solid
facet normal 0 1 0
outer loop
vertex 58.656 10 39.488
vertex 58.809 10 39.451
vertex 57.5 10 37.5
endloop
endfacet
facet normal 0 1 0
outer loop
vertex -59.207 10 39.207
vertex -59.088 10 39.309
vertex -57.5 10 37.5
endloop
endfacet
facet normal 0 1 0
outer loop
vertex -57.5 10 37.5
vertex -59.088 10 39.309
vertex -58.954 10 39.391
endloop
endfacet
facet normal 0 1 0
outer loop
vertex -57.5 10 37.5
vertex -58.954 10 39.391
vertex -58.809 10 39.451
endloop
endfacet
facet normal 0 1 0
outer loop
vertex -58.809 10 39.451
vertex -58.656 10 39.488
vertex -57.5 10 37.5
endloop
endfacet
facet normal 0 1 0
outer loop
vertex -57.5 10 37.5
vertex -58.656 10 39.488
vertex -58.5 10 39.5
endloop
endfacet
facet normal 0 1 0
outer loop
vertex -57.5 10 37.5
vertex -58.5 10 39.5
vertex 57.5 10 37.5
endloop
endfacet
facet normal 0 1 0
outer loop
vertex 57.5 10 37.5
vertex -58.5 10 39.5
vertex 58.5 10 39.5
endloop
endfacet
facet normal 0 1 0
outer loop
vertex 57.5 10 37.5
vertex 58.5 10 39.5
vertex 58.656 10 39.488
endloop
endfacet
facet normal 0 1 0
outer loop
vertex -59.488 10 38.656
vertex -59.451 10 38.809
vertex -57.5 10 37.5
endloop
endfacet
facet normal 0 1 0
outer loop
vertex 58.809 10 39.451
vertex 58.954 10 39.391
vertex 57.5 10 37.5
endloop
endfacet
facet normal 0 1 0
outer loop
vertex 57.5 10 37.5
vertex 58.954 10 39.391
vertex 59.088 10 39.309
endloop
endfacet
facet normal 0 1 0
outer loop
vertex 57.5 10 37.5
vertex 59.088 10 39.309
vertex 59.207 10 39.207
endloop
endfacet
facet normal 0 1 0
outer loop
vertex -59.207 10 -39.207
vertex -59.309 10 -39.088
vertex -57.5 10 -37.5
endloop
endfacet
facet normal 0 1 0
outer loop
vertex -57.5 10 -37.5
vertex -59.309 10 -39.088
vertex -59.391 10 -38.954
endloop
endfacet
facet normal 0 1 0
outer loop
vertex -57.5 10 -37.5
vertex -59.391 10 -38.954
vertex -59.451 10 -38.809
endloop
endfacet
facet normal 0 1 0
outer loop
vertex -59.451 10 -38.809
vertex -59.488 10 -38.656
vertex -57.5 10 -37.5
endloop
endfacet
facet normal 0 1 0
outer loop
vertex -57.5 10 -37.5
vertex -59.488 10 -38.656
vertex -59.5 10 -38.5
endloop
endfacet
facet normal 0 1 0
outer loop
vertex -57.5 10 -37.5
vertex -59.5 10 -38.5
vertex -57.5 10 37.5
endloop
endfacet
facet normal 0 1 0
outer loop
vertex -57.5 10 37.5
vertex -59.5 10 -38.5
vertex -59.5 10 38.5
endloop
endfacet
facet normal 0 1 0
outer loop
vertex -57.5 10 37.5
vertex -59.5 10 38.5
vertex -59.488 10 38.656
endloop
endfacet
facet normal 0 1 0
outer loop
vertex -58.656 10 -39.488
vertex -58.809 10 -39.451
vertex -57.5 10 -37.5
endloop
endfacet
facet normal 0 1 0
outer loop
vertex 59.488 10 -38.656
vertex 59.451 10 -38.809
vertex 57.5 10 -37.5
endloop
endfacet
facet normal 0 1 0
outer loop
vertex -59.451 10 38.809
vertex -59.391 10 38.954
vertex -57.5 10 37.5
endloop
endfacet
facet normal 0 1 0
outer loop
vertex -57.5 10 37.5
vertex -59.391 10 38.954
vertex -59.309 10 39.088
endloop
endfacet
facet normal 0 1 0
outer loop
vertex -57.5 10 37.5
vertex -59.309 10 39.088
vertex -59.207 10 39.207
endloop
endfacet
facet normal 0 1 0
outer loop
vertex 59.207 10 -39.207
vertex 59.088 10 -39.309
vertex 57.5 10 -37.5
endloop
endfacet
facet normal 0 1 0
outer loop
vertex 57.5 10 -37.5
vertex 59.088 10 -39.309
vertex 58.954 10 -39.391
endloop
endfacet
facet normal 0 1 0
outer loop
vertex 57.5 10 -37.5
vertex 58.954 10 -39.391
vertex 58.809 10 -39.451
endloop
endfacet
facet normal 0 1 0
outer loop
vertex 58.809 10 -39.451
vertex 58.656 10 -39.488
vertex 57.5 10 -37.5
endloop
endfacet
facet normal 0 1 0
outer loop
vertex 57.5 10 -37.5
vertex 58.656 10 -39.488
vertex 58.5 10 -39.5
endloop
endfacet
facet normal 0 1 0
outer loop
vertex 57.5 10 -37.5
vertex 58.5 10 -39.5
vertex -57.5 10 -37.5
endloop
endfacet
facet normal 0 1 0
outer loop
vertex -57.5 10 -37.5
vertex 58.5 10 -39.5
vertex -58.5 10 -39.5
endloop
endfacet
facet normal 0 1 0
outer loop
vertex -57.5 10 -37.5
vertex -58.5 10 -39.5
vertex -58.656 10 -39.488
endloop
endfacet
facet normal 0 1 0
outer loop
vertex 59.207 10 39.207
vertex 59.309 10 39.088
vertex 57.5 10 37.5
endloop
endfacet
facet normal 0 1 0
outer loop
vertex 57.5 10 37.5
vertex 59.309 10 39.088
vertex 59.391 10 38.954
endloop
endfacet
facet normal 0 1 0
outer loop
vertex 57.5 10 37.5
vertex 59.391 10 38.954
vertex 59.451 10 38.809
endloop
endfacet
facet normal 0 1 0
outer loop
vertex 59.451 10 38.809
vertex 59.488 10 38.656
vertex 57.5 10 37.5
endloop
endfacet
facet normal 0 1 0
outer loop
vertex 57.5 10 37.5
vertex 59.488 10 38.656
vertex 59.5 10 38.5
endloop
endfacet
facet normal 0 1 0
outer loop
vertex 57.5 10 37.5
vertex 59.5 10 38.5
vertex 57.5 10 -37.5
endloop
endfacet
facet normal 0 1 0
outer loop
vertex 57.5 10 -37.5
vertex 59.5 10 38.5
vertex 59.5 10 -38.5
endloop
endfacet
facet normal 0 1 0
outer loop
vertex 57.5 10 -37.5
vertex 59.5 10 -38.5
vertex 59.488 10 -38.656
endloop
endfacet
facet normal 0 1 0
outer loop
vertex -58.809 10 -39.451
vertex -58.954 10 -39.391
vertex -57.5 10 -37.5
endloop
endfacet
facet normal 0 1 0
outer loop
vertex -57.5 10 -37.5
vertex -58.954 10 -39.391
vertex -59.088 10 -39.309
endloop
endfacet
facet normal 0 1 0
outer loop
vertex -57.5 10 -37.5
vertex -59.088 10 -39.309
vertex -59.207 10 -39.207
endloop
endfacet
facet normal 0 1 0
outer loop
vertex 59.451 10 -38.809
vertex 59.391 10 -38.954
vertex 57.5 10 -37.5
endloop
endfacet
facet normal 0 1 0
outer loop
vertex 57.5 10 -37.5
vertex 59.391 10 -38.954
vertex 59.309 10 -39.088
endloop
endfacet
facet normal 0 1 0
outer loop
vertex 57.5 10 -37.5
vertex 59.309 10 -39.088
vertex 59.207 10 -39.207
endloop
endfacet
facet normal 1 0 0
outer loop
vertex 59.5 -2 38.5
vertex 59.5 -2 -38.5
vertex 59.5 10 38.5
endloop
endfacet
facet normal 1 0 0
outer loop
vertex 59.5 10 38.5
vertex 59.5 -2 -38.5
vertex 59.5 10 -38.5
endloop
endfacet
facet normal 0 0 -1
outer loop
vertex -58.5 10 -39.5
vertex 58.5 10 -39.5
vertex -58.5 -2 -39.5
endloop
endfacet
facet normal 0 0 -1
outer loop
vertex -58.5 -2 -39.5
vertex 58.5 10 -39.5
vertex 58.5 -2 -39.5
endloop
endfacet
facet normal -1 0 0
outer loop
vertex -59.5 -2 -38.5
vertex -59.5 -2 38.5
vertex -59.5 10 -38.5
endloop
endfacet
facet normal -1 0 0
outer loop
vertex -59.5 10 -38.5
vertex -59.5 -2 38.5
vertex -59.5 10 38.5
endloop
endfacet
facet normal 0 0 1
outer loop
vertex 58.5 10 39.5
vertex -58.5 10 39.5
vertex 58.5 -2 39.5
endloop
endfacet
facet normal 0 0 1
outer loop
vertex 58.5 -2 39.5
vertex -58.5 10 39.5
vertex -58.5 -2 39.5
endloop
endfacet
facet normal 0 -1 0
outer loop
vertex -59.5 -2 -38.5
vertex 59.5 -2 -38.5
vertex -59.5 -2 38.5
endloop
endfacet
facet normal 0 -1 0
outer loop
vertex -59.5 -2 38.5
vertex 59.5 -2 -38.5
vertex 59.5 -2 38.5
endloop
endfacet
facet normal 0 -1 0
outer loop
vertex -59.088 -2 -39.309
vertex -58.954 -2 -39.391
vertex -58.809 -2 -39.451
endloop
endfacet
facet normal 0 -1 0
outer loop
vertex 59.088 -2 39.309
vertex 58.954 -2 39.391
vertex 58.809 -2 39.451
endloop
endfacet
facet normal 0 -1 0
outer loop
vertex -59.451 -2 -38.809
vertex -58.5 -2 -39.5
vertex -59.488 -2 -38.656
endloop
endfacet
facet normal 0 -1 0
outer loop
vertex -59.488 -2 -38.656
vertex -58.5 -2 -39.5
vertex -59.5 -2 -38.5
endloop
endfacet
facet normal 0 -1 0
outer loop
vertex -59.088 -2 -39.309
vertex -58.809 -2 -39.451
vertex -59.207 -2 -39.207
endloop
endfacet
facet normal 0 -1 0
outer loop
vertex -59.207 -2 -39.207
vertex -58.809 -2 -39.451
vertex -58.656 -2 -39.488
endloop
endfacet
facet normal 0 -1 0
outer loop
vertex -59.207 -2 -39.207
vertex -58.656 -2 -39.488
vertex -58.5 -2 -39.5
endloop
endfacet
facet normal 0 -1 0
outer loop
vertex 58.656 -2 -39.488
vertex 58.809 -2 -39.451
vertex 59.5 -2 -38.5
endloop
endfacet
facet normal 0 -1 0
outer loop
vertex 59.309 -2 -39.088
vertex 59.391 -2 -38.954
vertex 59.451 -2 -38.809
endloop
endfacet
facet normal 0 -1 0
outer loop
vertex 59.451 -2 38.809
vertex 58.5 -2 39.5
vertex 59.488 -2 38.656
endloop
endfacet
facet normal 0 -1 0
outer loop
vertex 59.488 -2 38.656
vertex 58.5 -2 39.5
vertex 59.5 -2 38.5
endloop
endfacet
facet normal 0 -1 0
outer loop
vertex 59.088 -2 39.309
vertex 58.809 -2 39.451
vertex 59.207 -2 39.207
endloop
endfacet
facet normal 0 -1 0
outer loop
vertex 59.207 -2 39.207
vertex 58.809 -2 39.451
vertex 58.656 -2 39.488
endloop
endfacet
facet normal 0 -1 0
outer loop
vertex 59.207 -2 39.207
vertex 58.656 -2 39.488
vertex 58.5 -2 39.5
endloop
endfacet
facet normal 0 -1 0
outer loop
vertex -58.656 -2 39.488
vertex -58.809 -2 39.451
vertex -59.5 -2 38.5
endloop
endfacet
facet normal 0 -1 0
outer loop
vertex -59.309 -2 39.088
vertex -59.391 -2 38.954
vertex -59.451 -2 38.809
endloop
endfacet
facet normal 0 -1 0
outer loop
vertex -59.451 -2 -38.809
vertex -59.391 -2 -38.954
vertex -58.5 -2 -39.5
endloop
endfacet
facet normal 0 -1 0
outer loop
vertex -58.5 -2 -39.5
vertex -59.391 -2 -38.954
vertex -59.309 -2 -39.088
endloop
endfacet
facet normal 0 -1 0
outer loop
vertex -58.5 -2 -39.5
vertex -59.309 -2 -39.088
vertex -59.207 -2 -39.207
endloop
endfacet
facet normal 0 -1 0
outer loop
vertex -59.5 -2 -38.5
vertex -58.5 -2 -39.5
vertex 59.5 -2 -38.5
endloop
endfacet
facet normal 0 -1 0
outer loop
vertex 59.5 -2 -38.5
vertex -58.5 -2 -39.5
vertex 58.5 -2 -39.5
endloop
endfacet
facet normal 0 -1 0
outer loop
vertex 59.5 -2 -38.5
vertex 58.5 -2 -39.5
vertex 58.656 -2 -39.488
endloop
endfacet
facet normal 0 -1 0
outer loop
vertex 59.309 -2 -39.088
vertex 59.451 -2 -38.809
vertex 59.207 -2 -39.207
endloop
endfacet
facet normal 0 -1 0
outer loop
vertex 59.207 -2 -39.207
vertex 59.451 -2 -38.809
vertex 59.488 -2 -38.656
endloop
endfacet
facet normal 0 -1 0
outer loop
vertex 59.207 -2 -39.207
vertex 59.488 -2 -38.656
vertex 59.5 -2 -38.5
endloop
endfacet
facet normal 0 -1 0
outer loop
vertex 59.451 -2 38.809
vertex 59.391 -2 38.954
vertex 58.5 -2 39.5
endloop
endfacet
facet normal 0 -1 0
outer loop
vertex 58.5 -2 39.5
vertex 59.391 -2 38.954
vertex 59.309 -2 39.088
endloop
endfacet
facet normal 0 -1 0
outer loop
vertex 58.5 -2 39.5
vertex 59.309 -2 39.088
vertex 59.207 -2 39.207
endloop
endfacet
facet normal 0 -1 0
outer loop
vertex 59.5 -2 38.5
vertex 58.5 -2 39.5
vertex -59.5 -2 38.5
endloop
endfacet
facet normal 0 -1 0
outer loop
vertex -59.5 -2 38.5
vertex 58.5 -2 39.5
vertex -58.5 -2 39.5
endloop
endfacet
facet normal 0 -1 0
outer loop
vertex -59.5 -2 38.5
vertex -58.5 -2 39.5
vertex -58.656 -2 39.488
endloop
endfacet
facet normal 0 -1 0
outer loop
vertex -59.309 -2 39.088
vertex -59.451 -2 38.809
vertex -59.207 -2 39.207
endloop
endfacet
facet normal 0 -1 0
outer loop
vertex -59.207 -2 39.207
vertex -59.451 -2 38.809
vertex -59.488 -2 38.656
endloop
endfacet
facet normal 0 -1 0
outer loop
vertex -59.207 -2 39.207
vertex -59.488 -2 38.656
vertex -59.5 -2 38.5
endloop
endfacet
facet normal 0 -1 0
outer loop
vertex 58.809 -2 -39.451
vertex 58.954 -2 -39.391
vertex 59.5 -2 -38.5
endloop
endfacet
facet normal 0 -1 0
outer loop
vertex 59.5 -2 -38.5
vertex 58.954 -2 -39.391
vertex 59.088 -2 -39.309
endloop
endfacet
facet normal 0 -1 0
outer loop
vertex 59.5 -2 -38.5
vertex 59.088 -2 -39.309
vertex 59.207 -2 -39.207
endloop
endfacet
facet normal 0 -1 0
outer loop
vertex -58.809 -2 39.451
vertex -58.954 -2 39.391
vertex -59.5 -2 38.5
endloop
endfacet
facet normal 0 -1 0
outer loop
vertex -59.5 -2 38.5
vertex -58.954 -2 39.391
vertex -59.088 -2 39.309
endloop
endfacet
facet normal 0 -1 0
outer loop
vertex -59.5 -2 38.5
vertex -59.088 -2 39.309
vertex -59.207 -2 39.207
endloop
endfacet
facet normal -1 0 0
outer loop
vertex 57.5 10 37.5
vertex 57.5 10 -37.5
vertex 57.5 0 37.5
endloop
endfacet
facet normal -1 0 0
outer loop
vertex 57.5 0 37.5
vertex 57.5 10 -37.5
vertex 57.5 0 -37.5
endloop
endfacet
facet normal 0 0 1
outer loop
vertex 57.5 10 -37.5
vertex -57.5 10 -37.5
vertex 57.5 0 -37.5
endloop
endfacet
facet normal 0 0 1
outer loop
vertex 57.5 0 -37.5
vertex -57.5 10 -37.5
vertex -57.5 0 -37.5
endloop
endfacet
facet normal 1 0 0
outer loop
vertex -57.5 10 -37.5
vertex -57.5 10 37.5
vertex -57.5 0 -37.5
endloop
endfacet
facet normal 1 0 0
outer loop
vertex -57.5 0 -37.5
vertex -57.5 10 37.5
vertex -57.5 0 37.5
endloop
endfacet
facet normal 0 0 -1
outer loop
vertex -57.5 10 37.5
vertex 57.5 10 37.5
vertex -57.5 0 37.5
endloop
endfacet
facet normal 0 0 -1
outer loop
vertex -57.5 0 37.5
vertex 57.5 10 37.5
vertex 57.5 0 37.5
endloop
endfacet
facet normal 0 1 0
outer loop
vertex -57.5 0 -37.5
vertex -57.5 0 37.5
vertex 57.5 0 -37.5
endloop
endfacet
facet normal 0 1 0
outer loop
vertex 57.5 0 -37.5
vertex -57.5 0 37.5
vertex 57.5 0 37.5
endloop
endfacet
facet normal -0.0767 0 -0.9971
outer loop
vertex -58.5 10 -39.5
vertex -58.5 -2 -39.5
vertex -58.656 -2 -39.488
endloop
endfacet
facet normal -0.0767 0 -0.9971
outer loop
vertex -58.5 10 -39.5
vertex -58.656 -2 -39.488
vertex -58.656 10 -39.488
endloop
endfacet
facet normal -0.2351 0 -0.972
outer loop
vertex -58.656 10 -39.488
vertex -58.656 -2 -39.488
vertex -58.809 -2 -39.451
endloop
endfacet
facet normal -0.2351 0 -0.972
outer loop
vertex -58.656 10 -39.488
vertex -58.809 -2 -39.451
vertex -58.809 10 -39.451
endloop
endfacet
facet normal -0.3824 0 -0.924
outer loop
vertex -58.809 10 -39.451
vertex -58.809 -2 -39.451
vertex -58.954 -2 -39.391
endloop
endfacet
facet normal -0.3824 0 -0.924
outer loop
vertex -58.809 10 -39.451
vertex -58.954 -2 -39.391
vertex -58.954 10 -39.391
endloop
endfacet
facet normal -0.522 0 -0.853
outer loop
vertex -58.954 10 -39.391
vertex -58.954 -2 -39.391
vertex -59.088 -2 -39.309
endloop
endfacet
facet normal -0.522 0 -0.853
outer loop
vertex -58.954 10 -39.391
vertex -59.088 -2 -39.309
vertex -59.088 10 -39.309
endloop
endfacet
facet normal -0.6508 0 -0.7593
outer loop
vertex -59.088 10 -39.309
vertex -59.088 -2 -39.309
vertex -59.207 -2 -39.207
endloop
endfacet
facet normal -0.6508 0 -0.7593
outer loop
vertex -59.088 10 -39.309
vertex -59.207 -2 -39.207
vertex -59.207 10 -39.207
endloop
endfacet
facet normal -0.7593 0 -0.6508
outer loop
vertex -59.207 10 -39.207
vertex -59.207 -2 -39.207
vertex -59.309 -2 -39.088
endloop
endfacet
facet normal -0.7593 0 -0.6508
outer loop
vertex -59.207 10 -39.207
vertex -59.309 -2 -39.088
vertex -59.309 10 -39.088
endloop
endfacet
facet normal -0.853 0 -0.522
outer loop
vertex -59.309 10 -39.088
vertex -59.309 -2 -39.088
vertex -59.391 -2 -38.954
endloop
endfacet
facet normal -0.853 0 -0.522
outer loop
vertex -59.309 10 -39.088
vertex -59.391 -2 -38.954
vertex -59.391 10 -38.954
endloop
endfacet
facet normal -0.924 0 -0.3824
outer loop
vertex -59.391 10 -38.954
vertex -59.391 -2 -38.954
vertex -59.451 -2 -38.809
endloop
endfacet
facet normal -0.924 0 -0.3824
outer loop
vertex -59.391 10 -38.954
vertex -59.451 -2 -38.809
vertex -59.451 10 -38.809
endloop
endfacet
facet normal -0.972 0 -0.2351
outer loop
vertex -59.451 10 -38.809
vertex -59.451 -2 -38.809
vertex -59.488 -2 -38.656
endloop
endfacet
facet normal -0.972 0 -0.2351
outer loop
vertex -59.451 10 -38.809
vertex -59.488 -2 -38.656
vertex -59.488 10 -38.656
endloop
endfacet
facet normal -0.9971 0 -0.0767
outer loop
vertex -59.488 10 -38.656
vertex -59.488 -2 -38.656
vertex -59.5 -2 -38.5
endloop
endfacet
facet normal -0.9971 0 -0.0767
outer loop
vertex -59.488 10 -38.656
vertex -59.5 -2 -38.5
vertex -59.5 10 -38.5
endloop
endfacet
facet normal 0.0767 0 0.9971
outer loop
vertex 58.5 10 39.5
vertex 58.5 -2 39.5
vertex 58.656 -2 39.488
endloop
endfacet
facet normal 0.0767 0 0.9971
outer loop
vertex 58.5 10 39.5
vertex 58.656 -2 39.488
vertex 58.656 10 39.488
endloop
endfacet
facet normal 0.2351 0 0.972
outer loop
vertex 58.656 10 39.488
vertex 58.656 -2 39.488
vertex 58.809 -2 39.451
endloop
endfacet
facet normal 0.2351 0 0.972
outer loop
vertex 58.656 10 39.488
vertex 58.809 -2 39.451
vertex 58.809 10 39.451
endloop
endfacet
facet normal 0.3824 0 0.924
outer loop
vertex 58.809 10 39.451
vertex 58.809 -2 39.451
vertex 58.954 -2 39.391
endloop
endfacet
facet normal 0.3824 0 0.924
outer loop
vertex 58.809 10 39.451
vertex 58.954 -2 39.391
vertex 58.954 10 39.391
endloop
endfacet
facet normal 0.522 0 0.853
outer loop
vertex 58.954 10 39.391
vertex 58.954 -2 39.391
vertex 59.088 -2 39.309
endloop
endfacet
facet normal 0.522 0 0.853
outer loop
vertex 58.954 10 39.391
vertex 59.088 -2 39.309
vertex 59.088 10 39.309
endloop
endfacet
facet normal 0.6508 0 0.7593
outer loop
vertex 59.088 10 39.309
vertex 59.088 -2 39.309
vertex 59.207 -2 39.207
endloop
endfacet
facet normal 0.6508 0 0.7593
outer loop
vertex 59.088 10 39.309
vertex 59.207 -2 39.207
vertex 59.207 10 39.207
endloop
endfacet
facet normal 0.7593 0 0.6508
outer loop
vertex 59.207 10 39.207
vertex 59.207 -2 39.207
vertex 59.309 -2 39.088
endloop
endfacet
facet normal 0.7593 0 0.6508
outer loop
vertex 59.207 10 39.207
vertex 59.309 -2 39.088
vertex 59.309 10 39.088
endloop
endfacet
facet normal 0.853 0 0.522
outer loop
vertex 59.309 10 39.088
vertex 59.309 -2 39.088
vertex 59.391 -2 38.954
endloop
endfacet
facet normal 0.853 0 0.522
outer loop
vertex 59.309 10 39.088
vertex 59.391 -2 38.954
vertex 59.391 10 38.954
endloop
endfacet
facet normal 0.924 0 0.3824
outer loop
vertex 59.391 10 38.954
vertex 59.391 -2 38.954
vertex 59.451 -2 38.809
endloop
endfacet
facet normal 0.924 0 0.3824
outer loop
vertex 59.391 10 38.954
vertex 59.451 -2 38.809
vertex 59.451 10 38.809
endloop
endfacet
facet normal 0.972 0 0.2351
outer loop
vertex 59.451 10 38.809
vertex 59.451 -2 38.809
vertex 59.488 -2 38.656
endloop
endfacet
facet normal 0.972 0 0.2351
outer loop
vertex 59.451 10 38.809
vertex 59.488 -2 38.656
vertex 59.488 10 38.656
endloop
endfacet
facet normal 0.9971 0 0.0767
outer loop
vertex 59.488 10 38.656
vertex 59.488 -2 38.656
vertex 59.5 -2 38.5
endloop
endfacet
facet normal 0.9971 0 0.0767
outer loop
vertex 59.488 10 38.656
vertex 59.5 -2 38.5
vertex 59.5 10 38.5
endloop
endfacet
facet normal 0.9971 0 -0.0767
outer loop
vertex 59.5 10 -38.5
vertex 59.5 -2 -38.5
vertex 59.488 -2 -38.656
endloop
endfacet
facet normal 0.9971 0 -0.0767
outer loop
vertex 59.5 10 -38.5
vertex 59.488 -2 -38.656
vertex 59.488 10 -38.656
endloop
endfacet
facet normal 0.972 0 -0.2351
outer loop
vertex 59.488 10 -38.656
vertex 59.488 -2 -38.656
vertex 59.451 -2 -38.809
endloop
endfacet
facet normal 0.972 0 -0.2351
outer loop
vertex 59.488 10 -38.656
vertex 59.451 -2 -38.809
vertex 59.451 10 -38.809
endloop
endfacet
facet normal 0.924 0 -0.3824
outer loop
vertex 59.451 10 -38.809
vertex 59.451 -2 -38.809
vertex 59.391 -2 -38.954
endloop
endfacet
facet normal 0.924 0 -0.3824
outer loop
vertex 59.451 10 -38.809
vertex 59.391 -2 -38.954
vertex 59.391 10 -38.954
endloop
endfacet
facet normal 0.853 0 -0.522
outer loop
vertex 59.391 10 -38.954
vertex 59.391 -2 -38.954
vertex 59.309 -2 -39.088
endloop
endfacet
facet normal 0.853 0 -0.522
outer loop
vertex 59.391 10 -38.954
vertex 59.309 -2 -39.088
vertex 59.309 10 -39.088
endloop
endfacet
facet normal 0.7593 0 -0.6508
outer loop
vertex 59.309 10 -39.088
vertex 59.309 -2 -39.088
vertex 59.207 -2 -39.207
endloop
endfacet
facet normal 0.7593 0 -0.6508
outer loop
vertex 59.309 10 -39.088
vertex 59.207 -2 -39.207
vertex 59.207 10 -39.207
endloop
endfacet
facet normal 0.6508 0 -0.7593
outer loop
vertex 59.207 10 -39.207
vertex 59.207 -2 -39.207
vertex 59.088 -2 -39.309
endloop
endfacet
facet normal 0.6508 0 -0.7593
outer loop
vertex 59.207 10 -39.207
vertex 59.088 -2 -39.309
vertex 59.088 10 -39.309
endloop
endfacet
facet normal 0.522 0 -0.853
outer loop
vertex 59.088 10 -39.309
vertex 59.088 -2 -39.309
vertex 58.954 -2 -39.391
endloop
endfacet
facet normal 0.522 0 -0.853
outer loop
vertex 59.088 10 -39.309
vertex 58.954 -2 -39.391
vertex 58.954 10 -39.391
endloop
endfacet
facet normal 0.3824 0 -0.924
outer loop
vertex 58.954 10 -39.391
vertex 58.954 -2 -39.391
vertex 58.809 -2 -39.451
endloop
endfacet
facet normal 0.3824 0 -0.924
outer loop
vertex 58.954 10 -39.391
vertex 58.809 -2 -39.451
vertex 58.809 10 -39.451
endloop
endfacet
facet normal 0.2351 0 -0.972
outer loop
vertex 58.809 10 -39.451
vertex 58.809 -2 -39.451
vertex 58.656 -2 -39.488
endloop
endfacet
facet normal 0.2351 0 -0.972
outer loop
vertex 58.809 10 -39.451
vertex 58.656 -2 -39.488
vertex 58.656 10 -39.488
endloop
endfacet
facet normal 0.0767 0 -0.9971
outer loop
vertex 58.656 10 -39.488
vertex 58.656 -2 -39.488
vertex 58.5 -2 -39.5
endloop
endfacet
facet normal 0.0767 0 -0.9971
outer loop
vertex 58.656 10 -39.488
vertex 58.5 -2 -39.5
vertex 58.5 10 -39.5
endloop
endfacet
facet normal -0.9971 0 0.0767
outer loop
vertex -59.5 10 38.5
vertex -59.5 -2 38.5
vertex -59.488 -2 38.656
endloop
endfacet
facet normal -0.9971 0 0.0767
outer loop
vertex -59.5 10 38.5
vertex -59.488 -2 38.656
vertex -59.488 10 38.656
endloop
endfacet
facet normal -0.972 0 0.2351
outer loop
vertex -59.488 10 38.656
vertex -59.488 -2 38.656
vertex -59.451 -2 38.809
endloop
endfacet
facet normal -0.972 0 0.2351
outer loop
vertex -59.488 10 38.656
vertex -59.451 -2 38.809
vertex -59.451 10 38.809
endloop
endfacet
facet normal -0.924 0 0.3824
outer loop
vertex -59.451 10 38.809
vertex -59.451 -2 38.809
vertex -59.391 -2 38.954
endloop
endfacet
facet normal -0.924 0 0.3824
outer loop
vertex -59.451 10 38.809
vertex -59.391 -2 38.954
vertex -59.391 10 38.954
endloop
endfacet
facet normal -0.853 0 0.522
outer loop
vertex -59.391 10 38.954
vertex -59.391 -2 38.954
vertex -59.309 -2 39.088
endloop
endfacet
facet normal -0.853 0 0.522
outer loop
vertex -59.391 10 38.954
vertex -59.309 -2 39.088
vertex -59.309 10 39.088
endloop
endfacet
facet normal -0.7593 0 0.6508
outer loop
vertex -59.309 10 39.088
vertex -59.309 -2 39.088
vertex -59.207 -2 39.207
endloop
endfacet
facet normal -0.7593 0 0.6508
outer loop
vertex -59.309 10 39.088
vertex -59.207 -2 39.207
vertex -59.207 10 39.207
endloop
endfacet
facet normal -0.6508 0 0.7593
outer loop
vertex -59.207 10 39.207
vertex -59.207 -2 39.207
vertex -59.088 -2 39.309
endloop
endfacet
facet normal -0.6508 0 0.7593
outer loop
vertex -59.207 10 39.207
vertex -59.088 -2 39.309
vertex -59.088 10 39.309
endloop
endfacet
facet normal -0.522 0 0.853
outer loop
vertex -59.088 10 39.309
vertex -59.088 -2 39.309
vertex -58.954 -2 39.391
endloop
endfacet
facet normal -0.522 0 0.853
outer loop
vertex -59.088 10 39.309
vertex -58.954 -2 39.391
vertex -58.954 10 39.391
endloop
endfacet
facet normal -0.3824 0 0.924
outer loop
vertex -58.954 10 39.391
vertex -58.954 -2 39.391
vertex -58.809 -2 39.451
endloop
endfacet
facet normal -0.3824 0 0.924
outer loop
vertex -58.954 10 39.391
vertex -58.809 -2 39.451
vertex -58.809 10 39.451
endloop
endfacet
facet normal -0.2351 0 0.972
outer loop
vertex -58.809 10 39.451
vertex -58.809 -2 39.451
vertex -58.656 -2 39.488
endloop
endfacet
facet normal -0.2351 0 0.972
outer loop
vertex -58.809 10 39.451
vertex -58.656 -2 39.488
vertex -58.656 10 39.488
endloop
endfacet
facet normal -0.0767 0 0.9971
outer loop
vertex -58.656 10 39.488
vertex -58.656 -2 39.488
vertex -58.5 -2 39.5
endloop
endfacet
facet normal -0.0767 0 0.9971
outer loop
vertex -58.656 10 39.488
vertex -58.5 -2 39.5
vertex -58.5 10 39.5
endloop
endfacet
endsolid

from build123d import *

# Parameters (mm, degrees)
SKETCH1_W           = 115
SKETCH1_H           = 75
BOSS_EXTRUDE1_DEPTH = 10
SHELL1_T            = 2
FILLET1_R           = 1


with BuildPart() as part:
    # Sketch1 → Boss-Extrude1 (new body)
    with BuildSketch(Plane(origin=(0, 0, 0), x_dir=(1, 0, 0), z_dir=(0, 1, 0))):
        Rectangle(SKETCH1_W, SKETCH1_H)
    extrude(amount=BOSS_EXTRUDE1_DEPTH)

    # Shell1
    shell1_openings = [part.faces().sort_by_distance(p)[0] for p in [
        (0, 10, 0),
    ]]
    offset(amount=SHELL1_T, openings=shell1_openings, kind=Kind.INTERSECTION)

    # Fillet1
    # the kernel refuses this fillet: 1 mm, written as the material it takes off along each edge
    with BuildSketch(Plane(origin=(59.5, -4.5, 39.5), x_dir=(-1, 0, 0), z_dir=(0, 1, 0)), Plane(origin=(-59.5, 12.5, 39.5), x_dir=(1, 0, 0), z_dir=(0, -1, 0)), Plane(origin=(-59.5, -4.5, -39.5), x_dir=(1, 0, 0), z_dir=(0, 1, 0)), Plane(origin=(59.5, -4.5, -39.5), x_dir=(0, 0, 1), z_dir=(0, 1, 0))) as fillet1_piece_1:
        with BuildLine():
            CenterArc((FILLET1_R, -FILLET1_R), FILLET1_R, 90, 90)
            Line((0, -FILLET1_R), (0, 0))
            Line((0, 0), (FILLET1_R, 0))
        make_face()
    extrude(amount=17, mode=Mode.SUBTRACT)


solid = part.part
